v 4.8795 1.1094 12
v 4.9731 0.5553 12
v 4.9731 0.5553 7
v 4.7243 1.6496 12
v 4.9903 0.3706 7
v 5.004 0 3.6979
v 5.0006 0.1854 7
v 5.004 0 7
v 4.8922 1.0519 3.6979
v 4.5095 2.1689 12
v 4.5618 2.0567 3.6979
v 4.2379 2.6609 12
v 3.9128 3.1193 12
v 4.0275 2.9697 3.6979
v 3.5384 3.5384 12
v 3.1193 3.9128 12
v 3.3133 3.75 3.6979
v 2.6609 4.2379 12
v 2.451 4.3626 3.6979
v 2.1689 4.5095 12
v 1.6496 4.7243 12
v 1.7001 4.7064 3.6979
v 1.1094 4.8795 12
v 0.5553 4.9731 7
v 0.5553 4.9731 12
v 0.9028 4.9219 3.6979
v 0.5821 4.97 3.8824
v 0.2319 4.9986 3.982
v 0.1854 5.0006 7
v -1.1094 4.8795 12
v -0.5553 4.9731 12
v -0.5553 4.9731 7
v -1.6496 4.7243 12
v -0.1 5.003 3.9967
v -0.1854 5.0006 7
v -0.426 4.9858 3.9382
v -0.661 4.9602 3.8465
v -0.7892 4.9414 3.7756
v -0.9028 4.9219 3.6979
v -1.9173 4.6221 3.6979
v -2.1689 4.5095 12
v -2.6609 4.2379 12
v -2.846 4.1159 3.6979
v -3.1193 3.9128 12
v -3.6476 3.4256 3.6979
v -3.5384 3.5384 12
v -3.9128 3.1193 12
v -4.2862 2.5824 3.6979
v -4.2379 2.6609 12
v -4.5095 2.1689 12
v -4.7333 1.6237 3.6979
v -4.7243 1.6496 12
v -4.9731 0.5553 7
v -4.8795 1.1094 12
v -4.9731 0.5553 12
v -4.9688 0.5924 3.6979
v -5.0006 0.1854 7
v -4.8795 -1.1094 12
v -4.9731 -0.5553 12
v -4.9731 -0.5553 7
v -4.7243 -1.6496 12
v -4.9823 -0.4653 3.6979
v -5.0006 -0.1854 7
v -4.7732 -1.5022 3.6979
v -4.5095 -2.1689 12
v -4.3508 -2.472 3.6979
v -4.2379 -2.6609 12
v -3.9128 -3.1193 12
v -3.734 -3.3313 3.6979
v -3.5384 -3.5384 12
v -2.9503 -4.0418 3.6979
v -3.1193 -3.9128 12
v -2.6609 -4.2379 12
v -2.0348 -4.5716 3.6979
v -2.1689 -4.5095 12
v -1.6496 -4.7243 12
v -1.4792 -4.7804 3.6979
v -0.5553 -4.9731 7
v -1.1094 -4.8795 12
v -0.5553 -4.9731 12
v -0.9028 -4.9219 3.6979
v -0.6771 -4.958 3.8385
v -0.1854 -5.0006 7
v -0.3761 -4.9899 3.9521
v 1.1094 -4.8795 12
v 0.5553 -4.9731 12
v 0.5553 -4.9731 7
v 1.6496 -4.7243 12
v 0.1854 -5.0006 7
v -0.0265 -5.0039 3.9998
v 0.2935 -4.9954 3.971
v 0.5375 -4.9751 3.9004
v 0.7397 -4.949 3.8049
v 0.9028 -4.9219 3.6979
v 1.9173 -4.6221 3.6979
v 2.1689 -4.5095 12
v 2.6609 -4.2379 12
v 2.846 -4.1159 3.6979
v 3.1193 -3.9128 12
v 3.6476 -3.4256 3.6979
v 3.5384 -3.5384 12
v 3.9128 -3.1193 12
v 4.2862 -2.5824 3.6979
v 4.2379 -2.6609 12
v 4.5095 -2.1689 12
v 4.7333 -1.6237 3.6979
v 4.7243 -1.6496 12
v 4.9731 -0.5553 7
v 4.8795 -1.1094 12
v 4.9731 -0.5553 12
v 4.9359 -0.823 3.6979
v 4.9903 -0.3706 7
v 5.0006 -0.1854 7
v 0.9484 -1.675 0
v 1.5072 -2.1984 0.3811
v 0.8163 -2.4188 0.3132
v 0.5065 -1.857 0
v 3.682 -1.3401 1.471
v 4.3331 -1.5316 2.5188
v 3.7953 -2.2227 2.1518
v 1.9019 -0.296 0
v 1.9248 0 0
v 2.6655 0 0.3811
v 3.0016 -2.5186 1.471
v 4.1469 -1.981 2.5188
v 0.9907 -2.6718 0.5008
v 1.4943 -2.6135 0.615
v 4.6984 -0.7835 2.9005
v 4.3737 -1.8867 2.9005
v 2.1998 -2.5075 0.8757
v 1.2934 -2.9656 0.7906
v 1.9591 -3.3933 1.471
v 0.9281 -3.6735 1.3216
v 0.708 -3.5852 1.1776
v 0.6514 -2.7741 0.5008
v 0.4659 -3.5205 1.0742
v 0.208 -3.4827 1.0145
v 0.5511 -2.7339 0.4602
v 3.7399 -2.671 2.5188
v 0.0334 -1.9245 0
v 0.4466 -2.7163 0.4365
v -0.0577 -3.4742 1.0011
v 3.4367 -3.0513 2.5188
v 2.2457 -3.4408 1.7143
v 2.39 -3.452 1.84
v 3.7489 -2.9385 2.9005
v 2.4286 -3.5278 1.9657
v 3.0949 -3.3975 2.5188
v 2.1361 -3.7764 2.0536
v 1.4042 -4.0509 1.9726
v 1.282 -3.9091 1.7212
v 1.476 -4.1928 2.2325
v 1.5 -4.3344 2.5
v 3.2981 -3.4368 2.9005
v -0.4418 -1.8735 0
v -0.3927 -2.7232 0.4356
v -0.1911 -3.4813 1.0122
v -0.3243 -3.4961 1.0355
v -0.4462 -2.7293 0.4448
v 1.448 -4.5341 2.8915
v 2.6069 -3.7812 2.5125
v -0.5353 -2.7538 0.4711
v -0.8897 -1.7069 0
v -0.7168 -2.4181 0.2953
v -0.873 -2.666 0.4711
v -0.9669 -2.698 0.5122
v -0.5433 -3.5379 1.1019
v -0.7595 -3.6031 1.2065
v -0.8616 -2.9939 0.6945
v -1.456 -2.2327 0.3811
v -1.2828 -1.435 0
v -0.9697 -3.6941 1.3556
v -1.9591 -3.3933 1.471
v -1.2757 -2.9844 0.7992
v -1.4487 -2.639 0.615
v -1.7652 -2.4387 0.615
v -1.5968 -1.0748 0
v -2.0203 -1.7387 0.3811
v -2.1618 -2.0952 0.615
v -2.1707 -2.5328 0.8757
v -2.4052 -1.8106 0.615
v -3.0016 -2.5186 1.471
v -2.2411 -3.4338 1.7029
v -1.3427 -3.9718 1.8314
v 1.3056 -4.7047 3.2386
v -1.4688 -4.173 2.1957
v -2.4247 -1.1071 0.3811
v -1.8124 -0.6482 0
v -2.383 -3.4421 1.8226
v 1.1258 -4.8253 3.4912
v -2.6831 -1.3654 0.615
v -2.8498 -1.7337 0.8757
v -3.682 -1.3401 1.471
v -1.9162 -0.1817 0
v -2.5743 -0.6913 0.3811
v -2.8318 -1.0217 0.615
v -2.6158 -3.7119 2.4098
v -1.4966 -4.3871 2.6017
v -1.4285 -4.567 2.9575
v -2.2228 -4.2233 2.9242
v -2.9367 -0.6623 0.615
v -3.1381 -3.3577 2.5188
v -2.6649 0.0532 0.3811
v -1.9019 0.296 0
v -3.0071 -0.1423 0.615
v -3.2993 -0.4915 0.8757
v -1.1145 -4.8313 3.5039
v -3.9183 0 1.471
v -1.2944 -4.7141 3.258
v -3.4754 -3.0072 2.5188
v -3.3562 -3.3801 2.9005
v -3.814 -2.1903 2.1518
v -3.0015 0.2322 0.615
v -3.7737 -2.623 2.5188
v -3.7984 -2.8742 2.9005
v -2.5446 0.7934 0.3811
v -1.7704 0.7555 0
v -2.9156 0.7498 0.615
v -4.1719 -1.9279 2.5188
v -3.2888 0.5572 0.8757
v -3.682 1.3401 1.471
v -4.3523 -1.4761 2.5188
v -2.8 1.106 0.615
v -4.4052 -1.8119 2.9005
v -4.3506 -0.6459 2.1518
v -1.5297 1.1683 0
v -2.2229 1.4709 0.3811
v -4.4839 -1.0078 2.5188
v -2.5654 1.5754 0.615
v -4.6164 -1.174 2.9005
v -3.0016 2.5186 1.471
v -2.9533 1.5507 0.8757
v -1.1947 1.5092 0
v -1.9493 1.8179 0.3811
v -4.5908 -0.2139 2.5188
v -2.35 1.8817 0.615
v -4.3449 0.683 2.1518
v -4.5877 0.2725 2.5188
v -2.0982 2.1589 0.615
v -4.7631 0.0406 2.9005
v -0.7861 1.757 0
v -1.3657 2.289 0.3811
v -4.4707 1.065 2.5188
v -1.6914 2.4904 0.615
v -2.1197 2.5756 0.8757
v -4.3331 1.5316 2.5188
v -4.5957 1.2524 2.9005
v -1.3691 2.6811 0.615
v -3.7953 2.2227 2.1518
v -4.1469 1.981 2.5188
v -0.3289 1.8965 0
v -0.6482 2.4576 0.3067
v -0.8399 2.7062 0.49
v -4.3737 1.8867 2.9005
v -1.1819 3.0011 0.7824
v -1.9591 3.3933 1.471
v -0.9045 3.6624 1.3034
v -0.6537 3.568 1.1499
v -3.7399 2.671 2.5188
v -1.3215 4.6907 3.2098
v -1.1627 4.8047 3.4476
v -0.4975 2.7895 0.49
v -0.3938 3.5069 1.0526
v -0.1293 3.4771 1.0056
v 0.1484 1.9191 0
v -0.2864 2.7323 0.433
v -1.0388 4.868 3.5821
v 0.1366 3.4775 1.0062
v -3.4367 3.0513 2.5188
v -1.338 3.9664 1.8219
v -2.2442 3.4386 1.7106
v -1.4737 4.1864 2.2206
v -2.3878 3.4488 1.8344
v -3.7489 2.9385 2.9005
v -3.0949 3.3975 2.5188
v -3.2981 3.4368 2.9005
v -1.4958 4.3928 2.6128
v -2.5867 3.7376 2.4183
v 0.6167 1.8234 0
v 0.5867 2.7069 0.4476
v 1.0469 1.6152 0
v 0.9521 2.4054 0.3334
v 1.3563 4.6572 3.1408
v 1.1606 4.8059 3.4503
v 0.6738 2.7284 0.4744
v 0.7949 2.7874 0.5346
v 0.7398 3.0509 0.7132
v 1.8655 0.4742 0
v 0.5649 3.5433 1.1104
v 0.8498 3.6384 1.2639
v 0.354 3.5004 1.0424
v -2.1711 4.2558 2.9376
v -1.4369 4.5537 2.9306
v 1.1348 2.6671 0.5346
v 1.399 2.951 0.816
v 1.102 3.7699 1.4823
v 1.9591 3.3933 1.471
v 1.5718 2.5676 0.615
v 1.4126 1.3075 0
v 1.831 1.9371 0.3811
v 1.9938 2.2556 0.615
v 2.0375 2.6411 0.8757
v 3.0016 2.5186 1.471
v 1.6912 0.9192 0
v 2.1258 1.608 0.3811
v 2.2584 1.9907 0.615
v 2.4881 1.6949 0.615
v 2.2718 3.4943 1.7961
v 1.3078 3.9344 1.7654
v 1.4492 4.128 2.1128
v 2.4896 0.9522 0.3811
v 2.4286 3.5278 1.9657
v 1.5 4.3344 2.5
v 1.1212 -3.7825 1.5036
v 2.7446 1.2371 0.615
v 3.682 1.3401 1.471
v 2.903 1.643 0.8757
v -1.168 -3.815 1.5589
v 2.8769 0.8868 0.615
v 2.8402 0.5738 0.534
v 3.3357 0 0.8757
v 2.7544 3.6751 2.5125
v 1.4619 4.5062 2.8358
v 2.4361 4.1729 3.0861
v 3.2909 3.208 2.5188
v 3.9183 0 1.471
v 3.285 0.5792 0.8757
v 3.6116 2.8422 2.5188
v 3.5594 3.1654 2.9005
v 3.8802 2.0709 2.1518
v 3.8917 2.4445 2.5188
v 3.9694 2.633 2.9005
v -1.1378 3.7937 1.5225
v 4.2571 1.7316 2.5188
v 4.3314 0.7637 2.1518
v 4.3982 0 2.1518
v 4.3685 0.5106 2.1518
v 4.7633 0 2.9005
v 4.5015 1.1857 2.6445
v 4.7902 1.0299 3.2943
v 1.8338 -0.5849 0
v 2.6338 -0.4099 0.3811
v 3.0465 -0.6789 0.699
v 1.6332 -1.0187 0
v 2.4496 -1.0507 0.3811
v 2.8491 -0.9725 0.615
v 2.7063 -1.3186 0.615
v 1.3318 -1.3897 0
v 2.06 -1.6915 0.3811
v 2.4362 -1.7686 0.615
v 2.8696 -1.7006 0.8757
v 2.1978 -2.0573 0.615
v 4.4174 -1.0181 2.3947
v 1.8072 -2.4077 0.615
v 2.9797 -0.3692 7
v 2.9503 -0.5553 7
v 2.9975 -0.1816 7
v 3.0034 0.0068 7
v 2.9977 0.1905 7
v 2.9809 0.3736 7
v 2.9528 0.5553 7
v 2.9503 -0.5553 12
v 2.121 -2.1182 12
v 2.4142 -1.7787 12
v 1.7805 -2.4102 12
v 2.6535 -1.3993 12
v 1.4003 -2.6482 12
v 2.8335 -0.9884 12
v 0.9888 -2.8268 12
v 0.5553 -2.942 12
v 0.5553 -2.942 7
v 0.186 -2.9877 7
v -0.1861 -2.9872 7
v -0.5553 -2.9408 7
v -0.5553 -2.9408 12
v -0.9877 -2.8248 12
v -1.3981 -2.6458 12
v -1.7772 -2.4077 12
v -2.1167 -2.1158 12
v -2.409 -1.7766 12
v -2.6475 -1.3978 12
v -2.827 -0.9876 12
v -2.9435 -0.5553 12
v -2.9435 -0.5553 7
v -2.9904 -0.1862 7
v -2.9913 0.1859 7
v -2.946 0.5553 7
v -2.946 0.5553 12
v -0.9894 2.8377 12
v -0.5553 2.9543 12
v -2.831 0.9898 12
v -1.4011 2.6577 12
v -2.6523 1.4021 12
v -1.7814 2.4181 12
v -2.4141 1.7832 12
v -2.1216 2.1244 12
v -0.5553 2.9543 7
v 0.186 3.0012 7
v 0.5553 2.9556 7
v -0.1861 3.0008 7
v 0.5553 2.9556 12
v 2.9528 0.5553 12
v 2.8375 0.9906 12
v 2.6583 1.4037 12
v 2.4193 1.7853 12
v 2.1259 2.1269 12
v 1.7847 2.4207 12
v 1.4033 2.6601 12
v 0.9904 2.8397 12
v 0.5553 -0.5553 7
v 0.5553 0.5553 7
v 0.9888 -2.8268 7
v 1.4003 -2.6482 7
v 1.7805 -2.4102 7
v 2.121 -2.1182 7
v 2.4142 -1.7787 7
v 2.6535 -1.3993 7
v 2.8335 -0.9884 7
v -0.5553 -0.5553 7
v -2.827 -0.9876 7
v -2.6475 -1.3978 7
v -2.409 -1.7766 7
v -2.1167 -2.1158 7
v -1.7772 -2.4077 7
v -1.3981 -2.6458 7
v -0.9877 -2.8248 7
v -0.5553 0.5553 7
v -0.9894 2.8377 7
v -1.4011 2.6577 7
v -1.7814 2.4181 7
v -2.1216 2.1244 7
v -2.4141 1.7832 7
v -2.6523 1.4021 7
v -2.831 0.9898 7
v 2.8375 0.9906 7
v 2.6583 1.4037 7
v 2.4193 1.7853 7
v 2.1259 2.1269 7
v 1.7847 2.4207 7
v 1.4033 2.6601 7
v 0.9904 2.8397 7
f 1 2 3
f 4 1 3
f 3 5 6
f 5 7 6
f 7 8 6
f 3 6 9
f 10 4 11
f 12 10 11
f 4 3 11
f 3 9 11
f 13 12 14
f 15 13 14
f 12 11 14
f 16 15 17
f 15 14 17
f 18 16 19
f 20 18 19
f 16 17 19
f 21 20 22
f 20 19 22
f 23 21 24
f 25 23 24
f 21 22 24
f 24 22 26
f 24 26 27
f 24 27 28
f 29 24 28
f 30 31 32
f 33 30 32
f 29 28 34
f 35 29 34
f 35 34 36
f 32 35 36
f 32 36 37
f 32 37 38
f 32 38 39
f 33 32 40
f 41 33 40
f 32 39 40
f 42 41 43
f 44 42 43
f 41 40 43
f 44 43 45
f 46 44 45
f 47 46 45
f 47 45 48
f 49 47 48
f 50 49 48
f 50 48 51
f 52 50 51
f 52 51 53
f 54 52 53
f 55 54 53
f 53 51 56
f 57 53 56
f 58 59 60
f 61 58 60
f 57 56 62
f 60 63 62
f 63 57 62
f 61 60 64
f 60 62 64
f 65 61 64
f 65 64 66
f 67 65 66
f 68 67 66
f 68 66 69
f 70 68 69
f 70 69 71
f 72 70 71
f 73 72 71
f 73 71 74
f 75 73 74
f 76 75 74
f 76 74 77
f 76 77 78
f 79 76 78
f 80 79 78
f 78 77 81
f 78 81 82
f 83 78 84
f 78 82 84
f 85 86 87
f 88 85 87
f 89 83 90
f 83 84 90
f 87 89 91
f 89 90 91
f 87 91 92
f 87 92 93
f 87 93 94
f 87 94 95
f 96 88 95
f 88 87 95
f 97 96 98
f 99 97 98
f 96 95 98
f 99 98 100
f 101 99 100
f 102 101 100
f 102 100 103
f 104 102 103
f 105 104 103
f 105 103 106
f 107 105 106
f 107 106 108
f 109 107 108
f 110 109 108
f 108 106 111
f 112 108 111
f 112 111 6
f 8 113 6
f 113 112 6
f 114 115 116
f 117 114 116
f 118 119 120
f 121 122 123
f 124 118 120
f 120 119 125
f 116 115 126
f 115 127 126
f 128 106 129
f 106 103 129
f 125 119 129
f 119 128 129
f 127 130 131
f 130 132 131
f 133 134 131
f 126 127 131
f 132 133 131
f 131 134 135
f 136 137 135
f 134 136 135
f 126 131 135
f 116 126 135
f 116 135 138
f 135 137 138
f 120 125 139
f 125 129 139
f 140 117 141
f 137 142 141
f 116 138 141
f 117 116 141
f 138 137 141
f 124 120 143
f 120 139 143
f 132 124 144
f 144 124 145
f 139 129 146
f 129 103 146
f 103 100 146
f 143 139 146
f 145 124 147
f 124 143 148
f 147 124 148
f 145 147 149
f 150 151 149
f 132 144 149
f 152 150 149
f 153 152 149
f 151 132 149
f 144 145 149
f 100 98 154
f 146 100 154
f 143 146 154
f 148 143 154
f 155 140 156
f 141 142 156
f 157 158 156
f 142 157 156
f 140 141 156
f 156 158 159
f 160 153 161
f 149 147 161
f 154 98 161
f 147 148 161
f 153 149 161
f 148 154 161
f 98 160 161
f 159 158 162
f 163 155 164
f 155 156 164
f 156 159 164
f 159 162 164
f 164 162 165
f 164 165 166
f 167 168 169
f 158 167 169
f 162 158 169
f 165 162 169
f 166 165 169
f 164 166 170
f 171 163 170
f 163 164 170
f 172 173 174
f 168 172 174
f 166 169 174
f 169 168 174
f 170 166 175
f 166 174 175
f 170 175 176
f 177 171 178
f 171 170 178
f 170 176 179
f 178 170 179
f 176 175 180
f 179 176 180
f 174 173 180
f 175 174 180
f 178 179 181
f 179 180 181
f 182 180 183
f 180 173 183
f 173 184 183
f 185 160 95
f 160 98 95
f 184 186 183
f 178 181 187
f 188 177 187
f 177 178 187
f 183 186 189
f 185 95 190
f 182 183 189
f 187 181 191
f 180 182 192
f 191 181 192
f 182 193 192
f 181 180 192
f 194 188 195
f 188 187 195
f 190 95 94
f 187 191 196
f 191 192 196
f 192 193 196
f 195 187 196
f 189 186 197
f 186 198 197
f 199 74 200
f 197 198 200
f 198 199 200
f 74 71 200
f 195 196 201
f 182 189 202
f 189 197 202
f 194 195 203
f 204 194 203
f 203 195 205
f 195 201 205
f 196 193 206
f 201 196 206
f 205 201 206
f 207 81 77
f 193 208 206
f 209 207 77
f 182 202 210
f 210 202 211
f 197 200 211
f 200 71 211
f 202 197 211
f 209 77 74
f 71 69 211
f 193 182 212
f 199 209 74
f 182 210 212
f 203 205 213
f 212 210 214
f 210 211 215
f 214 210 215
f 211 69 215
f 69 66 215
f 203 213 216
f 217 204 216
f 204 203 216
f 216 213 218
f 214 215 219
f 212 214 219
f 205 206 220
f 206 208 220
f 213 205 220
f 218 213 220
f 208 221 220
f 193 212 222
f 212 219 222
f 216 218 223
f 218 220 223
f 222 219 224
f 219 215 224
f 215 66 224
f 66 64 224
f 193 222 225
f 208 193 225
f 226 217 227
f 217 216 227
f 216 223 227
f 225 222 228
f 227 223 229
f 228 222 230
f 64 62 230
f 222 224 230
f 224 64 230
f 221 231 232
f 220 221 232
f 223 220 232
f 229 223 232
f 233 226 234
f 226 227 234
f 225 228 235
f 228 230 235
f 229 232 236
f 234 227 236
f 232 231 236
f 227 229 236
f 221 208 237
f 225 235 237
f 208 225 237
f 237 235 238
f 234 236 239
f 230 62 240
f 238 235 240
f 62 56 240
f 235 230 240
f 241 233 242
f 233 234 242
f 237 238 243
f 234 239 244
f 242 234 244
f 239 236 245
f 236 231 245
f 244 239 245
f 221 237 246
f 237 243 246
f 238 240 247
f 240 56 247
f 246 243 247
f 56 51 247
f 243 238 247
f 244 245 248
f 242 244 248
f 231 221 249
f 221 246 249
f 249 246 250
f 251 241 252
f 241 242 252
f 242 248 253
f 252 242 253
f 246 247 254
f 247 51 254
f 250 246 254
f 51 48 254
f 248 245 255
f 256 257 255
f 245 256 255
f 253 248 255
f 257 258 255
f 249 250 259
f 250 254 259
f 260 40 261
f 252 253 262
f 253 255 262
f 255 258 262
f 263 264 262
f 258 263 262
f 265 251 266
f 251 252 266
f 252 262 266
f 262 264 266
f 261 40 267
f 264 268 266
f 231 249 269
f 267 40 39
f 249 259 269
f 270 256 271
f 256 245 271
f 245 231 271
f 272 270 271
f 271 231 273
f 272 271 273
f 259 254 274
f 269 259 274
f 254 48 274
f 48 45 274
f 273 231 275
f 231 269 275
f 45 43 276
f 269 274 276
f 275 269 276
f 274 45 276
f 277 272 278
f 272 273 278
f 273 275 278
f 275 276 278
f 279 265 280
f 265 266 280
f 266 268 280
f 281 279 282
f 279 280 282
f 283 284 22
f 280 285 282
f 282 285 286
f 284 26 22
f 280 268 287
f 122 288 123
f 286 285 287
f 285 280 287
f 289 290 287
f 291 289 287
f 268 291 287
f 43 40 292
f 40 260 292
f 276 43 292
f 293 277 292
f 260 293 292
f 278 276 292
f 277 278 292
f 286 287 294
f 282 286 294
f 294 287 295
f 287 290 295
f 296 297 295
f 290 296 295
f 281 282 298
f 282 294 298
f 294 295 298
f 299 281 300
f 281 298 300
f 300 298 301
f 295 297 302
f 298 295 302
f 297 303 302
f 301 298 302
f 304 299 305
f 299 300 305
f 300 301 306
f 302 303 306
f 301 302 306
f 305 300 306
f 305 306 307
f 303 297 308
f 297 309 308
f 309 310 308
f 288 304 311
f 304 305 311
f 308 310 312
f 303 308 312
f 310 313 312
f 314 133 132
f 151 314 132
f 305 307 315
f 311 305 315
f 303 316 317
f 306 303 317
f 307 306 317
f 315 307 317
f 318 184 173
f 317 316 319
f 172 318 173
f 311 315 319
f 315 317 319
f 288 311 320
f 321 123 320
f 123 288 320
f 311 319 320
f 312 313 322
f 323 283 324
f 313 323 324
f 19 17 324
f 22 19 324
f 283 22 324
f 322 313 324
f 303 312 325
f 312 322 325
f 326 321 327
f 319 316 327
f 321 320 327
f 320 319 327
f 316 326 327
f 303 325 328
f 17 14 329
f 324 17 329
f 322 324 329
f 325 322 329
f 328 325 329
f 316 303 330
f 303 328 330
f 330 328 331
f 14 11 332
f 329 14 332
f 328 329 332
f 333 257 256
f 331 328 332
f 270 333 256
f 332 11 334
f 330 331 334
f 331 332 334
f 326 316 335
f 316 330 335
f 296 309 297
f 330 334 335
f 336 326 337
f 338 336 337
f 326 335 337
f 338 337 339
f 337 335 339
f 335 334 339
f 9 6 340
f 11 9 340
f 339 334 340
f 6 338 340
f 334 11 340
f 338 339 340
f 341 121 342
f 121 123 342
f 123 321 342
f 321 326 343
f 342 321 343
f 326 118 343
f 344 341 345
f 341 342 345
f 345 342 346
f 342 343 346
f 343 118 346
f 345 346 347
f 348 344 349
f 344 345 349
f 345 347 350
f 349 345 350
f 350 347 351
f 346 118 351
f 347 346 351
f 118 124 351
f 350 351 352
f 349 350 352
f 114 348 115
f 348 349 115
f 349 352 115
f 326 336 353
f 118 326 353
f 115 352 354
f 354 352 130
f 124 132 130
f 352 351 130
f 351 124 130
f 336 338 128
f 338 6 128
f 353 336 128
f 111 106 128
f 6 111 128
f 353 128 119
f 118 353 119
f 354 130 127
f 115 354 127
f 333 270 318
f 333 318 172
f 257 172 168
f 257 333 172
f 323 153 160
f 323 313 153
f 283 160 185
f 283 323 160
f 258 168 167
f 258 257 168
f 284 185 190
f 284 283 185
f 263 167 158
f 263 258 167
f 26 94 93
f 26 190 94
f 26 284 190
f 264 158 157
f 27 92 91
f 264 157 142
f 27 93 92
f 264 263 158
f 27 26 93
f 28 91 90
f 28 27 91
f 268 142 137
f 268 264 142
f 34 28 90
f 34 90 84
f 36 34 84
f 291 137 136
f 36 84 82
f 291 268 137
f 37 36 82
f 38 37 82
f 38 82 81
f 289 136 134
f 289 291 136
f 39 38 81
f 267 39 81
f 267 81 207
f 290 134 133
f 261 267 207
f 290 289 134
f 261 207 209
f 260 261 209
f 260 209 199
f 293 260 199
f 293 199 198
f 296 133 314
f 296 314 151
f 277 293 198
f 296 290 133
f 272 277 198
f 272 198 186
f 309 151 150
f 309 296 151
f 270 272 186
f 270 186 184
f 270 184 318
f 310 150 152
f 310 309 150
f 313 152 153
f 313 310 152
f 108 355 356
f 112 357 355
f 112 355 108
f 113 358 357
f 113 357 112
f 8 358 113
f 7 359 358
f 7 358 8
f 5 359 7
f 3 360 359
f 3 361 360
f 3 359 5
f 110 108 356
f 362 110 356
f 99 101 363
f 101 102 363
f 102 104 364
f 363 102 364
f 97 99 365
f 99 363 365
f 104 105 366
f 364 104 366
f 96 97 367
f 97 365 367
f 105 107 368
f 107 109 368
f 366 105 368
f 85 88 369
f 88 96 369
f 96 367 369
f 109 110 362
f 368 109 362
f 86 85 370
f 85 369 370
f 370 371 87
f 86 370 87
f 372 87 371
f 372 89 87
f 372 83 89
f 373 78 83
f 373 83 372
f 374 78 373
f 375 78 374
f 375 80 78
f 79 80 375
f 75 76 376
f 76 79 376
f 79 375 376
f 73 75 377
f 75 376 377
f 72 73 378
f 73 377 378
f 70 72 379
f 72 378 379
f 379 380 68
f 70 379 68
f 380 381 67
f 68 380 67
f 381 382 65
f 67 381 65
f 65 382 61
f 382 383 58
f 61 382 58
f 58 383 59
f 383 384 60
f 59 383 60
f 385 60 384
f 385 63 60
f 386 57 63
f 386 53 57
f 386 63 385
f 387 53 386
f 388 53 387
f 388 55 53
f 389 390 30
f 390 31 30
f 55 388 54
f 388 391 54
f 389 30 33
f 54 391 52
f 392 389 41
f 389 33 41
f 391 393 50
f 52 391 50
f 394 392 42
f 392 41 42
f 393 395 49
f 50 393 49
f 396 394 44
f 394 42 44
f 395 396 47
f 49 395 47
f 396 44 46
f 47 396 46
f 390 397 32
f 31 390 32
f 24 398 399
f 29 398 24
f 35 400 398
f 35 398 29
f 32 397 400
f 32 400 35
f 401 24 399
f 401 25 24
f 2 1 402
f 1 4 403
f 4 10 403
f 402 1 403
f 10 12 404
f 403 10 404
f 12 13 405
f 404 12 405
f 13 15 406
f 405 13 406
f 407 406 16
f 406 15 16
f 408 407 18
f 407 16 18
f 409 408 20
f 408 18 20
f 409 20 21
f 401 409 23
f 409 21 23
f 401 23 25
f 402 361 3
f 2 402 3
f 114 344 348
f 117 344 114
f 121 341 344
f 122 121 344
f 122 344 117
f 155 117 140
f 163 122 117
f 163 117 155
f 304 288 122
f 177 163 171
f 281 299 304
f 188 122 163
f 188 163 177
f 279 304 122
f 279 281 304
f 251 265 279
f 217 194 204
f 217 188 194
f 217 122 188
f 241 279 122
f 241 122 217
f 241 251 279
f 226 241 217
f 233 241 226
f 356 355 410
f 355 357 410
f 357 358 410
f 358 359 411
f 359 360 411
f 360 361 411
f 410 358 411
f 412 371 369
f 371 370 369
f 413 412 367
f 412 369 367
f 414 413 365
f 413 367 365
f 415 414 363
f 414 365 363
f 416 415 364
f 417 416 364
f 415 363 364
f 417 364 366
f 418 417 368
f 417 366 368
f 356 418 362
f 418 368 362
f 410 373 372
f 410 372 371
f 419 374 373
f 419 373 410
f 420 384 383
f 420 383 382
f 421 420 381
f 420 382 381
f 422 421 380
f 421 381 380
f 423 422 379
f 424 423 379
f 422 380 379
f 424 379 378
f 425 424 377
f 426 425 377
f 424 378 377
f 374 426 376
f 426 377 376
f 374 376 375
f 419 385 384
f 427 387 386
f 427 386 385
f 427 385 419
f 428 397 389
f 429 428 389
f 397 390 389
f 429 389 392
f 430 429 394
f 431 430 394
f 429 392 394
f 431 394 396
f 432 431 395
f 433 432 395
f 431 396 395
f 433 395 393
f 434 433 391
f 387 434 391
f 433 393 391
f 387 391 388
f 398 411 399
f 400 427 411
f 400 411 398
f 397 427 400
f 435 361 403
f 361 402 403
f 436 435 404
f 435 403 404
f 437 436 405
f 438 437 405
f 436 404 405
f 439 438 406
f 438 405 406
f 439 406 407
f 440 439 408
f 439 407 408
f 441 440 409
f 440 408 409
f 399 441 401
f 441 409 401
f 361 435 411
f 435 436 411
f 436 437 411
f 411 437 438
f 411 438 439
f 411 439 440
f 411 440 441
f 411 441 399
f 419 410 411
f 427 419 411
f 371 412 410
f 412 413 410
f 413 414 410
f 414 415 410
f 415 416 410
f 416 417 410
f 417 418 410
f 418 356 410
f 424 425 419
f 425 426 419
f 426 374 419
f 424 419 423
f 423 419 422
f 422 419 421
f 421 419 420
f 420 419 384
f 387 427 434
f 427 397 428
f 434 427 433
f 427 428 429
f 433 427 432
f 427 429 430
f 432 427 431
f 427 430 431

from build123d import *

# Parameters (mm, degrees)
SKETCH003_R        = 1.5
PAD001_DEPTH       = 10
SKETCH_R           = 5.004015
PAD_DEPTH          = 12
SKETCH001_W        = 11.284618
SKETCH001_H        = 1.110598
POCKET_DEPTH       = 5
POLARPATTERN_COUNT = 2
POLARPATTERN_ANGLE = 90
SKETCH002_R        = 3
POCKET001_DEPTH    = 5


with BuildPart() as revolution:
    # Sketch004 → Revolution (revolve)
    with BuildSketch(Plane.XZ):
        with BuildLine():
            ThreePointArc((0, -0.399672), (3.65233, 1.175436), (5.120847, 4.871912))
            Line((5.120847, 4.871912), (6.070016, 4.871912))
            Line((6.070016, 4.871912), (6.070016, -2.113572))
            Line((0, -2.113572), (6.070016, -2.113572))
            Line((0, -0.399672), (0, -2.113572))
        make_face()
    revolve(axis=Axis((0, 0, 0), (0, 0, 1)))


with BuildPart() as pad001:
    # Sketch003 → Pad001 (new body, symmetric)
    with BuildSketch(Plane.XZ):
        with Locations((0, 2.5)):
            Circle(SKETCH003_R)
    extrude(amount=PAD001_DEPTH, both=True)


with BuildPart() as pippetto_smussato:
    # Sketch → Pad (new body)
    with BuildSketch(Plane.XY):
        Circle(SKETCH_R)
    extrude(amount=PAD_DEPTH)

    # Sketch001 → Pocket (cut)
    with BuildSketch(Plane.XY.offset(12)):
        Rectangle(SKETCH001_W, SKETCH001_H)
    pocket = extrude(amount=-POCKET_DEPTH, mode=Mode.SUBTRACT)

    # PolarPattern: Pocket ×2 about axis
    polarpattern_axis = Axis((0, 0, 12), (0, 0, 1))
    for i in range(1, POLARPATTERN_COUNT):
        add(pocket.rotate(polarpattern_axis, i * POLARPATTERN_ANGLE / (POLARPATTERN_COUNT - 1)), mode=Mode.SUBTRACT)

    # Sketch002 → Pocket001 (cut)
    with BuildSketch(Plane.XY.offset(12)):
        with Locations((0.003381, 0.006761)):
            Circle(SKETCH002_R)
    extrude(amount=-POCKET001_DEPTH, mode=Mode.SUBTRACT)

    # Cut: cut Pad001
    add(pad001.part, mode=Mode.SUBTRACT)

    # Cut001: cut Revolution
    add(revolution.part, mode=Mode.SUBTRACT)


solid = pippetto_smussato.part
